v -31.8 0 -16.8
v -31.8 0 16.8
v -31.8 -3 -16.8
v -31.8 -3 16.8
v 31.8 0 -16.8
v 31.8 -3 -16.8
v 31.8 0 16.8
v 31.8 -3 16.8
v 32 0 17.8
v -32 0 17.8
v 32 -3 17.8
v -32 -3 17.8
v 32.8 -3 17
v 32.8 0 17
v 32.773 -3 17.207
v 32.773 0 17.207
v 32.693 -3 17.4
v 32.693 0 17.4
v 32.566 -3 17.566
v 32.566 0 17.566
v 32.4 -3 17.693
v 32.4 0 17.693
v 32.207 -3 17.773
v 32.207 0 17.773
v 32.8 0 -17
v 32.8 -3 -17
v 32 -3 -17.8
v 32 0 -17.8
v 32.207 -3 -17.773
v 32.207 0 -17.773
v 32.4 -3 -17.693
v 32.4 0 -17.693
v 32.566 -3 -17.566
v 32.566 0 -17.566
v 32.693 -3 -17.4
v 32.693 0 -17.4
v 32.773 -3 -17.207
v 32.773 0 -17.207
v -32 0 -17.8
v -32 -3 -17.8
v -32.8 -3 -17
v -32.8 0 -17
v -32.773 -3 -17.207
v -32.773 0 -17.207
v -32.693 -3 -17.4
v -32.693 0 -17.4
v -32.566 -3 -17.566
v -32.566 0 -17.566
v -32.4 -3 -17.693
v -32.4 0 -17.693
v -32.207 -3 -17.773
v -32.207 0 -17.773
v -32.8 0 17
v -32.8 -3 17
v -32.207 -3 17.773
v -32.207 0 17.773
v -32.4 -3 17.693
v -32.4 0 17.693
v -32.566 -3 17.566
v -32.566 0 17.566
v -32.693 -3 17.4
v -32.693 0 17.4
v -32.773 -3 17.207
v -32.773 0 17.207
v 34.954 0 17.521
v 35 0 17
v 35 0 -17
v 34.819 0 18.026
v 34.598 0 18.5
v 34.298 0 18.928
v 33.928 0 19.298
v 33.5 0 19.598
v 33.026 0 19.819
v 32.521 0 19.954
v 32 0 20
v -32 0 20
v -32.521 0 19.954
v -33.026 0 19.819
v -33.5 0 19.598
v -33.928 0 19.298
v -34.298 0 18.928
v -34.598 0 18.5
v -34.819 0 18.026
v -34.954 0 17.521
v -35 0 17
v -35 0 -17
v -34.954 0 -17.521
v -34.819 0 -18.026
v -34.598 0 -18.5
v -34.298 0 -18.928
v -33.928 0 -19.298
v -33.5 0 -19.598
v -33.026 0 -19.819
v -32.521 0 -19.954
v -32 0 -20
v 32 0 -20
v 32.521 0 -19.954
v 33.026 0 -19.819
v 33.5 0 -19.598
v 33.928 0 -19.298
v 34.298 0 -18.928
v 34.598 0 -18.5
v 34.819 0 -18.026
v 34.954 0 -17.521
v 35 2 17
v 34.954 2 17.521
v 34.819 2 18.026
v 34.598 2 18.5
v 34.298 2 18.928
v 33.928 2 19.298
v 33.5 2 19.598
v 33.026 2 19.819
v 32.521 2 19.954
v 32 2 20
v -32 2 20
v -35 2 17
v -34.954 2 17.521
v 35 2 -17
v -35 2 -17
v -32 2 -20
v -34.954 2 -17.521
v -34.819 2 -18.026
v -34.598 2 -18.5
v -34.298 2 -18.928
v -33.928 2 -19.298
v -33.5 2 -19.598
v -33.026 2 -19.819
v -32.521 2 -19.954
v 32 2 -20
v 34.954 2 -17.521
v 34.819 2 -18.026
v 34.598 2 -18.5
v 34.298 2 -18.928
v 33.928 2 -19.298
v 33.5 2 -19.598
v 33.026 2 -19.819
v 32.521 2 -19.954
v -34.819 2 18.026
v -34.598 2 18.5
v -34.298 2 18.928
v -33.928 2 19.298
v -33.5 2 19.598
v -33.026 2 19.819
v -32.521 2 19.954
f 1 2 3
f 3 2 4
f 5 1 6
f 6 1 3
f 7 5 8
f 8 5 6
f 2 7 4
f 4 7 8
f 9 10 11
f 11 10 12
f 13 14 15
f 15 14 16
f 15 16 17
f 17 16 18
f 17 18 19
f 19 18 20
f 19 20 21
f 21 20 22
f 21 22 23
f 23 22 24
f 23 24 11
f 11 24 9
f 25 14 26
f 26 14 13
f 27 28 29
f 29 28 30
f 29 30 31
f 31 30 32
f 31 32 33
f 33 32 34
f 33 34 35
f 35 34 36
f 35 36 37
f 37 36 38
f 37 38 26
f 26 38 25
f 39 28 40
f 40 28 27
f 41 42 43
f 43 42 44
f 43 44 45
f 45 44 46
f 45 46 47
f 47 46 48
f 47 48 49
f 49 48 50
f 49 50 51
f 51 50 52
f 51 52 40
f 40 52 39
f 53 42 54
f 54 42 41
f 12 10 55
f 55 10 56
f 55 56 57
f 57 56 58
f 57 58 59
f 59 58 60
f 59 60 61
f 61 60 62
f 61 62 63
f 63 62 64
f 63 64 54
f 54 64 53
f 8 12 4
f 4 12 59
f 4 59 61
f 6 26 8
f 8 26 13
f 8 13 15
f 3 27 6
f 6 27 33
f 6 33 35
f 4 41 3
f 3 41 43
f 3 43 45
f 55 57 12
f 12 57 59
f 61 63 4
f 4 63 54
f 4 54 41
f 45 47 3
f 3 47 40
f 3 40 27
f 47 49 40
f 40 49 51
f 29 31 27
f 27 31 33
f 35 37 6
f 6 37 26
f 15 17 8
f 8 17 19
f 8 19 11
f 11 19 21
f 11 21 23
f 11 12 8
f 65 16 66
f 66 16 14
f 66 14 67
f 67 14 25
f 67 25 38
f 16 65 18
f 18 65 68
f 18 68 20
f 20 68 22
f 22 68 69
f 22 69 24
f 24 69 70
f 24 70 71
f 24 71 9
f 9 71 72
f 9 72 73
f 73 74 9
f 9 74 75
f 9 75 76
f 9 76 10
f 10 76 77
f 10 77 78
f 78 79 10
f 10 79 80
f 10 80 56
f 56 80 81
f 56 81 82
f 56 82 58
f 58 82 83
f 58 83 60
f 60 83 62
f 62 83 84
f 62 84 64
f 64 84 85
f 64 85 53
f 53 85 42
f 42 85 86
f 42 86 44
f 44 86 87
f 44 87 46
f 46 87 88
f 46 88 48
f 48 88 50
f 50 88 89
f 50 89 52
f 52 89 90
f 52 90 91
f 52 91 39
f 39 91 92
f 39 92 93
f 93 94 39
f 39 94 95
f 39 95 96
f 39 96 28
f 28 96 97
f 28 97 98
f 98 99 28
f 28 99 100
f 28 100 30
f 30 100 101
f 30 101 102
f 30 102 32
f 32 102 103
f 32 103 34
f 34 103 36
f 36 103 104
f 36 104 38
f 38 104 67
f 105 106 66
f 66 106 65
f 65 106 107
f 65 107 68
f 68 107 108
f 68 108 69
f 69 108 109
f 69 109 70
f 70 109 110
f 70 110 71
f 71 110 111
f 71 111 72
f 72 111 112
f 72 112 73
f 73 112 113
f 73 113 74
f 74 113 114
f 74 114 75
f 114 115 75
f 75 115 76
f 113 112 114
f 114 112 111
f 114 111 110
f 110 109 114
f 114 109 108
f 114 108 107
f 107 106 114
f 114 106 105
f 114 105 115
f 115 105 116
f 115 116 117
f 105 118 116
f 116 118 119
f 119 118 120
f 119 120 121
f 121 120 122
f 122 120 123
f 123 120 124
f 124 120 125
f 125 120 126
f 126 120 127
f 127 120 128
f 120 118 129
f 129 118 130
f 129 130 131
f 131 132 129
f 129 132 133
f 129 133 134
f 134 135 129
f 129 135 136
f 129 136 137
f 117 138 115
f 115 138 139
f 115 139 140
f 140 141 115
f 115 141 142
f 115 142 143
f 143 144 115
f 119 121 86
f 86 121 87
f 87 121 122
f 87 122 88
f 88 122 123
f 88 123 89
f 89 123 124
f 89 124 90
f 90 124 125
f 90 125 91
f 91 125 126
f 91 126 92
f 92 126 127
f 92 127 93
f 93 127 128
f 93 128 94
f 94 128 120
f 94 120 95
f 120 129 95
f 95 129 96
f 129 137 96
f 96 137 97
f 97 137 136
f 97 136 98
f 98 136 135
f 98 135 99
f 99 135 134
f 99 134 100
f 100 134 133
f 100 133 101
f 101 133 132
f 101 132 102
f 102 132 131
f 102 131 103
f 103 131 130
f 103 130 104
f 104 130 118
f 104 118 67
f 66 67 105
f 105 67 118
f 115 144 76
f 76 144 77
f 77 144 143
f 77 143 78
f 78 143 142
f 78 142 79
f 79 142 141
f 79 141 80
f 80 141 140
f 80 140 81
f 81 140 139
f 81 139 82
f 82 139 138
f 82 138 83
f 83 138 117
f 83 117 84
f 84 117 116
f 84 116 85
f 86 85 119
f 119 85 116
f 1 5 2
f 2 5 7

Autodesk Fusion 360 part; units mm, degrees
sketch "Sketch1" plane through (0, 0, 0) normal (0, 1, 0) x (1, 0, 0)
  line L0 (-35, 20) -> (35, 20)
  line L1 (35, 20) -> (35, -20)
  line L2 (35, -20) -> (-35, -20)
  line L3 (-35, -20) -> (-35, 20)
  line L4 (-35, 20) -> (35, -20) construction
  dimension "d106" = 70
  dimension "d107" = 40
extrude "Extrude1" add sketch "Sketch1" along normal blind 2
fillet "Fillet1" radius 3 4 edges at (-35, 1, 20) (35, 1, -20) (-35, 1, -20) (35, 1, 20)
sketch "Sketch2" plane through (0, 0, 0) normal (0, -1, 0) x (1, 0, 0)
  arc A0 (35, 17) -> (32, 20) centre (32, 17) ccw
  line L0 (32, 20) -> (-32, 20)
  arc A1 (-32, 20) -> (-35, 17) centre (-32, 17) ccw
  line L1 (-35, 17) -> (-35, -17)
  arc A2 (-35, -17) -> (-32, -20) centre (-32, -17) ccw
  line L2 (-32, -20) -> (32, -20)
  arc A3 (32, -20) -> (35, -17) centre (32, -17) ccw
  line L3 (35, -17) -> (35, 17)
  line L4 (-32.8, 17) -> (-32.8, -17)
  arc A4 (-32.8, -17) -> (-32, -17.8) centre (-32, -17) ccw
  line L5 (-32, -17.8) -> (32, -17.8)
  arc A5 (32, -17.8) -> (32.8, -17) centre (32, -17) ccw
  line L6 (32.8, -17) -> (32.8, 17)
  arc A6 (32.8, 17) -> (32, 17.8) centre (32, 17) ccw
  line L7 (32, 17.8) -> (-32, 17.8)
  arc A7 (-32, 17.8) -> (-32.8, 17) centre (-32, 17) ccw
  line L8 (-31.8, 16.8) -> (-31.8, -16.8)
  line L9 (-31.8, -16.8) -> (31.8, -16.8)
  line L10 (31.8, -16.8) -> (31.8, 16.8)
  line L11 (31.8, 16.8) -> (-31.8, 16.8)
  dimension "d111" = -2.2
  dimension "d112" = -3.2
extrude "Extrude2" add sketch "Sketch2" along normal blind 3 contours L4 A4 L5 A5 L6 A6 L7 A7
